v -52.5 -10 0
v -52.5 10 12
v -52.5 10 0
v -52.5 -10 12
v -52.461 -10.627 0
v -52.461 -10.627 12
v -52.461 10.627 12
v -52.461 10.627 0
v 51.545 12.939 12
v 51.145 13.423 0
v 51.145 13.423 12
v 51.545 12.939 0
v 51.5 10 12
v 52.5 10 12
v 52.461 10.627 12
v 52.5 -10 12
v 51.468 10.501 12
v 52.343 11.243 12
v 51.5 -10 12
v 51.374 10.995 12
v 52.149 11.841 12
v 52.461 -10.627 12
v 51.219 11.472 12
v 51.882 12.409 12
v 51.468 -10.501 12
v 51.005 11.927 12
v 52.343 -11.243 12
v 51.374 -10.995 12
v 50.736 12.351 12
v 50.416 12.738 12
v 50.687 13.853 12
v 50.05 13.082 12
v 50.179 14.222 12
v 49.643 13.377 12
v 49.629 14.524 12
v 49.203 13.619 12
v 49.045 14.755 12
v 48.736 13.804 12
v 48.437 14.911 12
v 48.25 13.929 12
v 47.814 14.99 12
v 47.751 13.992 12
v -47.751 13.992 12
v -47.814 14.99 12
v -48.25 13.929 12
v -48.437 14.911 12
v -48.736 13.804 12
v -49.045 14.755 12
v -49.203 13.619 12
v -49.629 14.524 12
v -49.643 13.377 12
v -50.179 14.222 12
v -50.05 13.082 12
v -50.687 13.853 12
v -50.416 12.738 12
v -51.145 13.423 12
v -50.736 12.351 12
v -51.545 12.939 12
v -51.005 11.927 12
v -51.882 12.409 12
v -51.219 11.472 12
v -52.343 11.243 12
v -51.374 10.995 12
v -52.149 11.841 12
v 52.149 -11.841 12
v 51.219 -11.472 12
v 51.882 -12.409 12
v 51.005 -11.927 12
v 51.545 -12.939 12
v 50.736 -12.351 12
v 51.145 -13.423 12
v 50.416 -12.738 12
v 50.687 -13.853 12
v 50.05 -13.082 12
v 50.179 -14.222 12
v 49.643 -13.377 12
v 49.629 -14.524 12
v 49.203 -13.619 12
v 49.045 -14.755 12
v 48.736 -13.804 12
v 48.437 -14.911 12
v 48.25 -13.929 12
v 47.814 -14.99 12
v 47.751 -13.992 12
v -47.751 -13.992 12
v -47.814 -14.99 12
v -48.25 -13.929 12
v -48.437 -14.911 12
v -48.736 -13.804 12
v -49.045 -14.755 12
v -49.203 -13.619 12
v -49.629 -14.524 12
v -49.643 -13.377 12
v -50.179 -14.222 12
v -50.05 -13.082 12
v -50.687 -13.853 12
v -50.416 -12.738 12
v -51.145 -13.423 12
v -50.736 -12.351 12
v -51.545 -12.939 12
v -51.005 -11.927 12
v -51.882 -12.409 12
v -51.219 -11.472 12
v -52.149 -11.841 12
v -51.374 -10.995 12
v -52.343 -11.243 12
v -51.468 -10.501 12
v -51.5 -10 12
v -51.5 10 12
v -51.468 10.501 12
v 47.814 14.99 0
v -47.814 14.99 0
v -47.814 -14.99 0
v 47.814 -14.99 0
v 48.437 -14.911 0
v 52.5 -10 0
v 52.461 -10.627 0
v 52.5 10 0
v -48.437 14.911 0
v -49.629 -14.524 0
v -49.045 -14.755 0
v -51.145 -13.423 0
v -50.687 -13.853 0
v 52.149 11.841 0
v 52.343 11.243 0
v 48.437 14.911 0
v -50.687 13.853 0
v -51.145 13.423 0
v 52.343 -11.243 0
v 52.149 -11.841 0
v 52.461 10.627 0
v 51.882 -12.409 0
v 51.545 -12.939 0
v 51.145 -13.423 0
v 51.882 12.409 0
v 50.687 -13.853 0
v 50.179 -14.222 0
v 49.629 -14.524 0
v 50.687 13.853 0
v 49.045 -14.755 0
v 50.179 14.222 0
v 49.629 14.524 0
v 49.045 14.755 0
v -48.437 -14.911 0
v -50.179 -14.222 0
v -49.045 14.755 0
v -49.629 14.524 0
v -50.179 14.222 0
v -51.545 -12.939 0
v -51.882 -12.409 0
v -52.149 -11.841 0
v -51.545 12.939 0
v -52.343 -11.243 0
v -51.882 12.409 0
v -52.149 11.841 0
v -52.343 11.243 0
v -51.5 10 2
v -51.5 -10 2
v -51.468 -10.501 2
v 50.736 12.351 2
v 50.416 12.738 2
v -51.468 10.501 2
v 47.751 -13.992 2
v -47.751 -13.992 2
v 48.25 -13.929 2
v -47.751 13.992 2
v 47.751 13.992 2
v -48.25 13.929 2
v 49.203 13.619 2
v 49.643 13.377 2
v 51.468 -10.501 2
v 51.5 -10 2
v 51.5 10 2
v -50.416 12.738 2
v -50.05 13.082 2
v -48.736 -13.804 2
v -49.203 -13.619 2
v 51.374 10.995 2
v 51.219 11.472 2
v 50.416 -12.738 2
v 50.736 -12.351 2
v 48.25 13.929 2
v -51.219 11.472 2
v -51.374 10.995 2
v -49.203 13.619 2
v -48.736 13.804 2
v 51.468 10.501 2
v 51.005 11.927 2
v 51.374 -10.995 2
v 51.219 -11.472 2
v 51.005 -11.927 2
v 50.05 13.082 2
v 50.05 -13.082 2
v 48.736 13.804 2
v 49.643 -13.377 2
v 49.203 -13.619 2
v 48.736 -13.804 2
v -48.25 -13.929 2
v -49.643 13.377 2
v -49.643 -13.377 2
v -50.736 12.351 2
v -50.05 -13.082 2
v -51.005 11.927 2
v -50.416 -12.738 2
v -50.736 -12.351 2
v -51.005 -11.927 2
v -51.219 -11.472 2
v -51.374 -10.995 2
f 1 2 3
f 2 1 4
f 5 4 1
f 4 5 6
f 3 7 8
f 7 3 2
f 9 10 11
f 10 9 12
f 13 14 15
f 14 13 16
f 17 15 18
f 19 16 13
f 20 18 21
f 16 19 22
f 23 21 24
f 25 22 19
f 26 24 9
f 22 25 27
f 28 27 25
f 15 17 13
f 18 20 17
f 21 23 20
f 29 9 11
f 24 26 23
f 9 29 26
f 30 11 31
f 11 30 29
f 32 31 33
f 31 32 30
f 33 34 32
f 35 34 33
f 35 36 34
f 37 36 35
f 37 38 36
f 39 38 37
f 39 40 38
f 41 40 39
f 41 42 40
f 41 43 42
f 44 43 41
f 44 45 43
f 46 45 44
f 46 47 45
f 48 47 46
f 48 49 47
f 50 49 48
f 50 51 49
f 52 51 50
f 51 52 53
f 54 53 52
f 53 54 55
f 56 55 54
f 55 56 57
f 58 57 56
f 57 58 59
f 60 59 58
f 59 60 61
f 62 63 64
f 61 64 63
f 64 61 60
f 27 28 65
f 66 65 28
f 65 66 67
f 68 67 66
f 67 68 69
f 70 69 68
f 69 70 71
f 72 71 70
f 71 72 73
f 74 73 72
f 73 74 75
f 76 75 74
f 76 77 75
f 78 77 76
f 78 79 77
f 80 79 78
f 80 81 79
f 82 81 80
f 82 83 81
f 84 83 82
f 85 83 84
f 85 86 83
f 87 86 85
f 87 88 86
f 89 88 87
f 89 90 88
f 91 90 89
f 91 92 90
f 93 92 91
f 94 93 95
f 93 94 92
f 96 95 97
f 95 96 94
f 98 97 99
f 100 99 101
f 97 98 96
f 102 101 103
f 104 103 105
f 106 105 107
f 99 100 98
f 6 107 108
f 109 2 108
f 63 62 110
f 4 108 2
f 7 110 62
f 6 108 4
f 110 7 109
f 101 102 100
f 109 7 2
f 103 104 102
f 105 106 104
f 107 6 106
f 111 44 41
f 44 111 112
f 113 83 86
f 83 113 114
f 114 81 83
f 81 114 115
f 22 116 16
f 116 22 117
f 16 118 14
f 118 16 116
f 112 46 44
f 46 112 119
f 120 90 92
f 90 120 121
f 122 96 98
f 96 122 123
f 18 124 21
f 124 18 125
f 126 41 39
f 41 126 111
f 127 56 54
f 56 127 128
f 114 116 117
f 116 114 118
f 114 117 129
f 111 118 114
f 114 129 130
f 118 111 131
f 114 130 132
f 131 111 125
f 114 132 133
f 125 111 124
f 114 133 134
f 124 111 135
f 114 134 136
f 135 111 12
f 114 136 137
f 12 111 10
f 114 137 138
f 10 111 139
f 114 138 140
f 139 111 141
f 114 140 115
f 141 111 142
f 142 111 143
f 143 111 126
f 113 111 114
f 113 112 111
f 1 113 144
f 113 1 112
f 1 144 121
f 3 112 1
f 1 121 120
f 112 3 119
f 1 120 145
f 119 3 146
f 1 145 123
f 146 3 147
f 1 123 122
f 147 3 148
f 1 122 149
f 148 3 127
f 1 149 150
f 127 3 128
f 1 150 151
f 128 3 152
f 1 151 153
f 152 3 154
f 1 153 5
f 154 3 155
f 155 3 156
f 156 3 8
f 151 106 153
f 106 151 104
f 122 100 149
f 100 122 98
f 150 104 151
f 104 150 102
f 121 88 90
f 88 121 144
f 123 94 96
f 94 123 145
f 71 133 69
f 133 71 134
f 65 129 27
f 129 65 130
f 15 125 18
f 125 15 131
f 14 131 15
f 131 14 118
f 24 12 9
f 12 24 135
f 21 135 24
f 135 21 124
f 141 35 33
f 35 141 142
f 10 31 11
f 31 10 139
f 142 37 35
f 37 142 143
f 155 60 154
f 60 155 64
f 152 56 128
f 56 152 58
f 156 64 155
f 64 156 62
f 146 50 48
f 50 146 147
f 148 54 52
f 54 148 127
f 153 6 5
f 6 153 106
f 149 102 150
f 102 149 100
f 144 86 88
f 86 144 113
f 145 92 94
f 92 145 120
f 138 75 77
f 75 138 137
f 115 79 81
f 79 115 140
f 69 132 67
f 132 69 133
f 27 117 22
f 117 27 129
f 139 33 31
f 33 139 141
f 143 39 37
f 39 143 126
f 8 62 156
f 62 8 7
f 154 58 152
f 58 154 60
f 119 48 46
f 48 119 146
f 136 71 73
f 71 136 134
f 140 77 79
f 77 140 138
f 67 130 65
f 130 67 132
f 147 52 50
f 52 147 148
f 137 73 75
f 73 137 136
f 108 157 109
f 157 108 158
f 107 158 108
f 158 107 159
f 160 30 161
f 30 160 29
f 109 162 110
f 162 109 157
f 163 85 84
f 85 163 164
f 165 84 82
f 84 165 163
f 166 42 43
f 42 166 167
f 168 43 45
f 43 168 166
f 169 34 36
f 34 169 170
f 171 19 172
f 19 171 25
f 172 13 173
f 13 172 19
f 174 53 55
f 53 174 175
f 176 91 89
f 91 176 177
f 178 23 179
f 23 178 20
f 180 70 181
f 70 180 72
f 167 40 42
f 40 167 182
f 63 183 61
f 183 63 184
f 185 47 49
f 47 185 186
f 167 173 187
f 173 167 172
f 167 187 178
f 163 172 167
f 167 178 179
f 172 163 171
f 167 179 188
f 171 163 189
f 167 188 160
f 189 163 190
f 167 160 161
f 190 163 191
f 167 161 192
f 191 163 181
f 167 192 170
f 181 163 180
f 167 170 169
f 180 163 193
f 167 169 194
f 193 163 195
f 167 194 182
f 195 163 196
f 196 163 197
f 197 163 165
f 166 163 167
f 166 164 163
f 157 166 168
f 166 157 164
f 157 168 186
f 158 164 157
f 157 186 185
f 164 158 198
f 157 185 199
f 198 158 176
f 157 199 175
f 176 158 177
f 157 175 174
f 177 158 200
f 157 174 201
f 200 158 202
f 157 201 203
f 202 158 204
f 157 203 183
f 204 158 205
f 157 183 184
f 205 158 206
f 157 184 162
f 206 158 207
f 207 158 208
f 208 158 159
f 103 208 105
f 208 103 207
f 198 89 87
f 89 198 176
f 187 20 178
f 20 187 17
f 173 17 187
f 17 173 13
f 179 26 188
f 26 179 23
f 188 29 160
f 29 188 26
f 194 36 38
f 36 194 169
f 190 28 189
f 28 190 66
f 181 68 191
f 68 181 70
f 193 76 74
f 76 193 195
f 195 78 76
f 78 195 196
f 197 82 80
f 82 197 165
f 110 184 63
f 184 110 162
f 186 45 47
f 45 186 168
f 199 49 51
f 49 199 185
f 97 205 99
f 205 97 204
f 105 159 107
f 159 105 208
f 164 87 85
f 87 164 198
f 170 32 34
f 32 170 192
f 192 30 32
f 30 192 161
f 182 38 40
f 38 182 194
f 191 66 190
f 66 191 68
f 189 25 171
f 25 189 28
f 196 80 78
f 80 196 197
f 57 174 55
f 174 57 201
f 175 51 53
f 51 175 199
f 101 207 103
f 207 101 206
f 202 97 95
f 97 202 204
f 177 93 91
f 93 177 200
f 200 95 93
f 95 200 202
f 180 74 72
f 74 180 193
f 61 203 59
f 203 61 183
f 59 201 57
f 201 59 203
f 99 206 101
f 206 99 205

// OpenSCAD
$fn = 50;


difference() {
	union() {
		hull() {
			translate(v = [-47.5000000000, 10.0000000000, 0]) {
				cylinder(h = 12, r = 5);
			}
			translate(v = [47.5000000000, 10.0000000000, 0]) {
				cylinder(h = 12, r = 5);
			}
			translate(v = [-47.5000000000, -10.0000000000, 0]) {
				cylinder(h = 12, r = 5);
			}
			translate(v = [47.5000000000, -10.0000000000, 0]) {
				cylinder(h = 12, r = 5);
			}
		}
	}
	union() {
		translate(v = [0, 0, 2]) {
			hull() {
				translate(v = [-47.5000000000, 10.0000000000, 0]) {
					cylinder(h = 10, r = 4);
				}
				translate(v = [47.5000000000, 10.0000000000, 0]) {
					cylinder(h = 10, r = 4);
				}
				translate(v = [-47.5000000000, -10.0000000000, 0]) {
					cylinder(h = 10, r = 4);
				}
				translate(v = [47.5000000000, -10.0000000000, 0]) {
					cylinder(h = 10, r = 4);
				}
			}
		}
	}
}
